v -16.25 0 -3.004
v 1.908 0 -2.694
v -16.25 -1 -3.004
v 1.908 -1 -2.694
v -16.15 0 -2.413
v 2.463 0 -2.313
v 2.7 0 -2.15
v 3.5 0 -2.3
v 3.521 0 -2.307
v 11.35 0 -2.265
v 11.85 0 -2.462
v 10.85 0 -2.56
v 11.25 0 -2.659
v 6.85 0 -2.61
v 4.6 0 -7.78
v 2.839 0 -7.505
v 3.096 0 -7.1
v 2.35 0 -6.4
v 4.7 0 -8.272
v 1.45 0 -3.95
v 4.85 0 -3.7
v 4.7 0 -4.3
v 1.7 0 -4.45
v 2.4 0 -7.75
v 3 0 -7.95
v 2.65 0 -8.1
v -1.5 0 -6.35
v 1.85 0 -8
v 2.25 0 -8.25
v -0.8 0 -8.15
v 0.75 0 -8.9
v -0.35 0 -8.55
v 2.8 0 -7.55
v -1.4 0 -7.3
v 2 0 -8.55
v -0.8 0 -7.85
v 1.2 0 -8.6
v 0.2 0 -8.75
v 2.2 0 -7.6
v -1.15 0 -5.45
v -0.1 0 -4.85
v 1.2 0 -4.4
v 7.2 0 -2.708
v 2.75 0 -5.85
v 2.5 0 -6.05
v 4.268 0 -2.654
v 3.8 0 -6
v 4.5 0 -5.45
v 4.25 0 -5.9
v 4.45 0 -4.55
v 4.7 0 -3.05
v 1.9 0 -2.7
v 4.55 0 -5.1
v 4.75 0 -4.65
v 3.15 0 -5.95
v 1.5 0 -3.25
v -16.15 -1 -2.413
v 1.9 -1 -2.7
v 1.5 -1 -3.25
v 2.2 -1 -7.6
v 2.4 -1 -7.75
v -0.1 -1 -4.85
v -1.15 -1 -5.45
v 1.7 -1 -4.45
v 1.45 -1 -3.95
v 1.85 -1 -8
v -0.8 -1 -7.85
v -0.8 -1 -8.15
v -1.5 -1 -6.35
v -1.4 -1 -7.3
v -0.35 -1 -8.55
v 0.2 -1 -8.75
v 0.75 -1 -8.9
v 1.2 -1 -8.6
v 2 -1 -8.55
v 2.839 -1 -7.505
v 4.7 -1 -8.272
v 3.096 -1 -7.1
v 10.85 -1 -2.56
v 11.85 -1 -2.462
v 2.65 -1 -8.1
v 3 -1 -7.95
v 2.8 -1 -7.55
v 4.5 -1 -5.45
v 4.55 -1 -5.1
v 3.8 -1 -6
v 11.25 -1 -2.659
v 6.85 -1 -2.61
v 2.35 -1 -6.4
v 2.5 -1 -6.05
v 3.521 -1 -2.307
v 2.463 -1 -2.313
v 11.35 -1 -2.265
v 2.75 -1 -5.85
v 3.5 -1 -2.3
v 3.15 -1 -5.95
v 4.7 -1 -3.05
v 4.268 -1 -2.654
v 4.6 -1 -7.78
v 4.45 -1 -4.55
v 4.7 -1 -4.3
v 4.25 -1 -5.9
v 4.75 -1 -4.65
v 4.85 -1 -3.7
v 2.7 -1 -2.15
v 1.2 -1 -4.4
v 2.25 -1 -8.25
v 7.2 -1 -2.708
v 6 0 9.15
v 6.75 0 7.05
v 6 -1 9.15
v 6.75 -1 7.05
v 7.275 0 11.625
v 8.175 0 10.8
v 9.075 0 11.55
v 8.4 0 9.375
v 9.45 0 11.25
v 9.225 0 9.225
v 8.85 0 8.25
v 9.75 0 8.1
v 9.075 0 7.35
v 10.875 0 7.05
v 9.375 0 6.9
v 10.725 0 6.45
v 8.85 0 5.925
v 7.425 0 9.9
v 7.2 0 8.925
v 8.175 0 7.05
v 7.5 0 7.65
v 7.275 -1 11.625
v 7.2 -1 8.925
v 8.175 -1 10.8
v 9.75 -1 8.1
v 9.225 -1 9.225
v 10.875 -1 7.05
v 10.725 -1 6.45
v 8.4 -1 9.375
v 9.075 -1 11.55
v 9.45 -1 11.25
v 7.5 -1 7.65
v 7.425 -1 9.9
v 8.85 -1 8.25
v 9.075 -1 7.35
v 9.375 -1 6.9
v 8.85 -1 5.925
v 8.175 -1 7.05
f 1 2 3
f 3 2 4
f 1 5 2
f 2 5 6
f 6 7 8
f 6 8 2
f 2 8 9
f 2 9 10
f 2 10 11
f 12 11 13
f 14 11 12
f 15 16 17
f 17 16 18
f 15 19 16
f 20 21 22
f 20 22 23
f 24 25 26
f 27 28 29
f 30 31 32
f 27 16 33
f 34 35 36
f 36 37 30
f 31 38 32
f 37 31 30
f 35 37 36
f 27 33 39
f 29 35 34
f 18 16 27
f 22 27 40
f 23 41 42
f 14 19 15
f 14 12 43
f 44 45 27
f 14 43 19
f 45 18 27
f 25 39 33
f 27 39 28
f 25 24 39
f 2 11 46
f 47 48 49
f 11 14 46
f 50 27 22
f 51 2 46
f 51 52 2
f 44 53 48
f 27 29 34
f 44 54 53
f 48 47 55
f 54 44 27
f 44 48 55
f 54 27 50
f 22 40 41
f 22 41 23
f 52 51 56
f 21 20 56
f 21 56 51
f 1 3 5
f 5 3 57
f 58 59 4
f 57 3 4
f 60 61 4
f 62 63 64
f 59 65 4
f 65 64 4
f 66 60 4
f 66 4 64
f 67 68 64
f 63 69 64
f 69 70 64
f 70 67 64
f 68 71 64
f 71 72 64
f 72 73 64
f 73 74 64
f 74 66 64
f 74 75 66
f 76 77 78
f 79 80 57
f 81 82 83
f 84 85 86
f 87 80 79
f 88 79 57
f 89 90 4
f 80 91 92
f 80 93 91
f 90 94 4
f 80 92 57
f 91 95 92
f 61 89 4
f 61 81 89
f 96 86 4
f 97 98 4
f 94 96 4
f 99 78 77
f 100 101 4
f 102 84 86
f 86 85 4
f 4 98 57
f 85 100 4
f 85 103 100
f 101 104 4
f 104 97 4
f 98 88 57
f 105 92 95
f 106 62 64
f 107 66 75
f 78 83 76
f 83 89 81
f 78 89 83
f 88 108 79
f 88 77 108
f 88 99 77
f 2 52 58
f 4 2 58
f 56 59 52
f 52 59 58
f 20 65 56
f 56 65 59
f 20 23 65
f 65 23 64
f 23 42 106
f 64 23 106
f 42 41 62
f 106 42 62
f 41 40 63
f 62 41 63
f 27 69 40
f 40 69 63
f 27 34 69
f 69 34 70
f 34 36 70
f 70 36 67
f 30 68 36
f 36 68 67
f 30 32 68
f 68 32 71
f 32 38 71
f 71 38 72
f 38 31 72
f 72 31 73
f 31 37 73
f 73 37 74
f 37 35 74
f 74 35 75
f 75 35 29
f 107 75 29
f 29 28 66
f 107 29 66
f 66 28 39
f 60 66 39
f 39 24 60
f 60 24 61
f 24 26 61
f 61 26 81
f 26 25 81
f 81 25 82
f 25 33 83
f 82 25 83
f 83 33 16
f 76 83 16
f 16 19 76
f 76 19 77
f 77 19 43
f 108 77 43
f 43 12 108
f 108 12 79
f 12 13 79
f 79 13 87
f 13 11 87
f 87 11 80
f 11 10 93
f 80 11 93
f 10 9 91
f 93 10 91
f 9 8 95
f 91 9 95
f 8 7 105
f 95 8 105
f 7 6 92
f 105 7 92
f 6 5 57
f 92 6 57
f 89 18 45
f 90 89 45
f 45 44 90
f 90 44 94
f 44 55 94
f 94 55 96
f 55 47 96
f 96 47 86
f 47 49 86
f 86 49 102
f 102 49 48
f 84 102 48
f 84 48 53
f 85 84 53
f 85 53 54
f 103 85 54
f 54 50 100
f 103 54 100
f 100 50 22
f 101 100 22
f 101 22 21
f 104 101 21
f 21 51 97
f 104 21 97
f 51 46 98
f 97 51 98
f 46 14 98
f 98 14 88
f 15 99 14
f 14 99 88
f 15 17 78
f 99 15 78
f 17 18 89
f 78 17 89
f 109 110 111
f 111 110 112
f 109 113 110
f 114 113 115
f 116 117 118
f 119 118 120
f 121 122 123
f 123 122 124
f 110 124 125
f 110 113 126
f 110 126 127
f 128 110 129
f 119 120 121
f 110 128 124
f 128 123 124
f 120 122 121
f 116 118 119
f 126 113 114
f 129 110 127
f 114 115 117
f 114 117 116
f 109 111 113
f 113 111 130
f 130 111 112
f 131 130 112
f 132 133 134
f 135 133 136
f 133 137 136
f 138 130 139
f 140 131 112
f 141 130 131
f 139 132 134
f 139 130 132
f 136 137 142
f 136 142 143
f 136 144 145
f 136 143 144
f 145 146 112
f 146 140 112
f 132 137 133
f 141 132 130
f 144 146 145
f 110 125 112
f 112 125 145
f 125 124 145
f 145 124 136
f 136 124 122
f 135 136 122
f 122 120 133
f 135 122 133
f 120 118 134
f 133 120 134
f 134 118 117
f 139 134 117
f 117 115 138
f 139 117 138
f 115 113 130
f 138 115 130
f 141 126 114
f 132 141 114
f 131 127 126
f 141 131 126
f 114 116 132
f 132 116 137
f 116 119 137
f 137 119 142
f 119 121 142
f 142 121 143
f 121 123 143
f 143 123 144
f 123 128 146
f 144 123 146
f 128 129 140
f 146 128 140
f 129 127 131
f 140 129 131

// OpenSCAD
// file: pageTwo.scad
//start
module  middleLine() 
{ 
color  ([1,0.6,0.8]) 
{ 
            polygon(points = [
[-16.15,-2.45]
,[11.35,-2.30]
,[11.85,-2.50]
,[11.25,-2.70]
,[10.85,-2.60]
,[7.20,-2.75]
,[4.70,-8.40]
,[2.55,-7.50]
,[2.45,-7.05]
,[2.75,-7.05]
,[4.60,-7.90]
,[6.85,-2.65]
,[-16.25,-3.05]
]
,paths = [
[0,1,2,3,4,5,6,7,8,9,10,11,12]]
            );
}
}
//start
module  outerMoon() 
{ 
color  ([0.2,0.8,0.6]) 
{ 
            polygon(points = [
[26.05,2.70]
,[24.85,2.75]
,[24.00,1.10]
,[24.50,-0.30]
,[25.90,-1.05]
,[27.15,-0.70]
,[27.25,-0.30]
,[26.50,0.40]
,[26.15,1.15]
,[26.30,2.50]
]
,paths = [
[0,1,2,3,4,5,6,7,8,9]]
            );
}
}
//start
module  innerMoon() 
{ 
color  ([0,0.2,0.4]) 
{ 
            polygon(points = [
[25.45,2.20]
,[24.95,1.60]
,[24.80,0.95]
,[25.00,0.10]
,[25.45,-0.30]
,[26.25,-0.40]
,[26.05,-0.10]
,[25.90,0.50]
,[25.60,1.25]
]
,paths = [
[0,1,2,3,4,5,6,7,8]]
            );
}
}
//start
module  boy() 
{ 
color  ([0.2,0,1]) 
{ 
            polygon(points = [
[18.70,-13.10]
,[18.25,-13.40]
,[17.70,-13.25]
,[17.15,-13.05]
,[16.70,-12.65]
,[16.70,-12.35]
,[16.10,-11.80]
,[16.00,-10.85]
,[16.35,-9.95]
,[17.40,-9.35]
,[18.70,-8.90]
,[19.20,-8.95]
,[18.95,-8.45]
,[19.00,-7.75]
,[19.40,-7.20]
,[20.20,-6.65]
,[21.00,-6.80]
,[21.60,-7.00]
,[22.20,-7.55]
,[22.35,-8.20]
,[22.20,-8.80]
,[21.95,-9.05]
,[22.25,-9.15]
,[22.05,-9.60]
,[22.00,-9.95]
,[21.75,-10.40]
,[21.30,-10.50]
,[20.65,-10.45]
,[20.25,-10.35]
,[20.00,-10.55]
,[19.85,-10.90]
,[20.65,-11.65]
,[20.30,-12.05]
,[20.50,-12.45]
,[20.15,-12.60]
,[19.90,-12.25]
,[19.70,-12.10]
,[19.35,-12.50]
,[19.75,-12.75]
,[19.50,-13.05]
]
,paths = [
[0,1,2,3,4,5,6,7,8,9,10,11,12,13,14,15,16,17,18,19,20,21,22,23,24,25,26,27,28,29,30,31,32,33,34,35,36,37,38,39]]
            );
}
}
// main file
use <pageTwo.scad>;
use <write.scad>;

rotate([90,0,0]){

//	rotate([-90,0,0])
//	translate([0,7,-8])
	linear_extrude(height = 1)
	rotate([-10,0,0])
	translate([0,0,-1.5])
		middleLine();

	linear_extrude(height = 1)
	scale([1.5,1.5,1.5])
	translate([-20,5,0])
		difference(){
			outerMoon();
			innerMoon();
		}

	linear_extrude(height = 1)
	translate([-17.5,4.5,0])
		boy();
}
